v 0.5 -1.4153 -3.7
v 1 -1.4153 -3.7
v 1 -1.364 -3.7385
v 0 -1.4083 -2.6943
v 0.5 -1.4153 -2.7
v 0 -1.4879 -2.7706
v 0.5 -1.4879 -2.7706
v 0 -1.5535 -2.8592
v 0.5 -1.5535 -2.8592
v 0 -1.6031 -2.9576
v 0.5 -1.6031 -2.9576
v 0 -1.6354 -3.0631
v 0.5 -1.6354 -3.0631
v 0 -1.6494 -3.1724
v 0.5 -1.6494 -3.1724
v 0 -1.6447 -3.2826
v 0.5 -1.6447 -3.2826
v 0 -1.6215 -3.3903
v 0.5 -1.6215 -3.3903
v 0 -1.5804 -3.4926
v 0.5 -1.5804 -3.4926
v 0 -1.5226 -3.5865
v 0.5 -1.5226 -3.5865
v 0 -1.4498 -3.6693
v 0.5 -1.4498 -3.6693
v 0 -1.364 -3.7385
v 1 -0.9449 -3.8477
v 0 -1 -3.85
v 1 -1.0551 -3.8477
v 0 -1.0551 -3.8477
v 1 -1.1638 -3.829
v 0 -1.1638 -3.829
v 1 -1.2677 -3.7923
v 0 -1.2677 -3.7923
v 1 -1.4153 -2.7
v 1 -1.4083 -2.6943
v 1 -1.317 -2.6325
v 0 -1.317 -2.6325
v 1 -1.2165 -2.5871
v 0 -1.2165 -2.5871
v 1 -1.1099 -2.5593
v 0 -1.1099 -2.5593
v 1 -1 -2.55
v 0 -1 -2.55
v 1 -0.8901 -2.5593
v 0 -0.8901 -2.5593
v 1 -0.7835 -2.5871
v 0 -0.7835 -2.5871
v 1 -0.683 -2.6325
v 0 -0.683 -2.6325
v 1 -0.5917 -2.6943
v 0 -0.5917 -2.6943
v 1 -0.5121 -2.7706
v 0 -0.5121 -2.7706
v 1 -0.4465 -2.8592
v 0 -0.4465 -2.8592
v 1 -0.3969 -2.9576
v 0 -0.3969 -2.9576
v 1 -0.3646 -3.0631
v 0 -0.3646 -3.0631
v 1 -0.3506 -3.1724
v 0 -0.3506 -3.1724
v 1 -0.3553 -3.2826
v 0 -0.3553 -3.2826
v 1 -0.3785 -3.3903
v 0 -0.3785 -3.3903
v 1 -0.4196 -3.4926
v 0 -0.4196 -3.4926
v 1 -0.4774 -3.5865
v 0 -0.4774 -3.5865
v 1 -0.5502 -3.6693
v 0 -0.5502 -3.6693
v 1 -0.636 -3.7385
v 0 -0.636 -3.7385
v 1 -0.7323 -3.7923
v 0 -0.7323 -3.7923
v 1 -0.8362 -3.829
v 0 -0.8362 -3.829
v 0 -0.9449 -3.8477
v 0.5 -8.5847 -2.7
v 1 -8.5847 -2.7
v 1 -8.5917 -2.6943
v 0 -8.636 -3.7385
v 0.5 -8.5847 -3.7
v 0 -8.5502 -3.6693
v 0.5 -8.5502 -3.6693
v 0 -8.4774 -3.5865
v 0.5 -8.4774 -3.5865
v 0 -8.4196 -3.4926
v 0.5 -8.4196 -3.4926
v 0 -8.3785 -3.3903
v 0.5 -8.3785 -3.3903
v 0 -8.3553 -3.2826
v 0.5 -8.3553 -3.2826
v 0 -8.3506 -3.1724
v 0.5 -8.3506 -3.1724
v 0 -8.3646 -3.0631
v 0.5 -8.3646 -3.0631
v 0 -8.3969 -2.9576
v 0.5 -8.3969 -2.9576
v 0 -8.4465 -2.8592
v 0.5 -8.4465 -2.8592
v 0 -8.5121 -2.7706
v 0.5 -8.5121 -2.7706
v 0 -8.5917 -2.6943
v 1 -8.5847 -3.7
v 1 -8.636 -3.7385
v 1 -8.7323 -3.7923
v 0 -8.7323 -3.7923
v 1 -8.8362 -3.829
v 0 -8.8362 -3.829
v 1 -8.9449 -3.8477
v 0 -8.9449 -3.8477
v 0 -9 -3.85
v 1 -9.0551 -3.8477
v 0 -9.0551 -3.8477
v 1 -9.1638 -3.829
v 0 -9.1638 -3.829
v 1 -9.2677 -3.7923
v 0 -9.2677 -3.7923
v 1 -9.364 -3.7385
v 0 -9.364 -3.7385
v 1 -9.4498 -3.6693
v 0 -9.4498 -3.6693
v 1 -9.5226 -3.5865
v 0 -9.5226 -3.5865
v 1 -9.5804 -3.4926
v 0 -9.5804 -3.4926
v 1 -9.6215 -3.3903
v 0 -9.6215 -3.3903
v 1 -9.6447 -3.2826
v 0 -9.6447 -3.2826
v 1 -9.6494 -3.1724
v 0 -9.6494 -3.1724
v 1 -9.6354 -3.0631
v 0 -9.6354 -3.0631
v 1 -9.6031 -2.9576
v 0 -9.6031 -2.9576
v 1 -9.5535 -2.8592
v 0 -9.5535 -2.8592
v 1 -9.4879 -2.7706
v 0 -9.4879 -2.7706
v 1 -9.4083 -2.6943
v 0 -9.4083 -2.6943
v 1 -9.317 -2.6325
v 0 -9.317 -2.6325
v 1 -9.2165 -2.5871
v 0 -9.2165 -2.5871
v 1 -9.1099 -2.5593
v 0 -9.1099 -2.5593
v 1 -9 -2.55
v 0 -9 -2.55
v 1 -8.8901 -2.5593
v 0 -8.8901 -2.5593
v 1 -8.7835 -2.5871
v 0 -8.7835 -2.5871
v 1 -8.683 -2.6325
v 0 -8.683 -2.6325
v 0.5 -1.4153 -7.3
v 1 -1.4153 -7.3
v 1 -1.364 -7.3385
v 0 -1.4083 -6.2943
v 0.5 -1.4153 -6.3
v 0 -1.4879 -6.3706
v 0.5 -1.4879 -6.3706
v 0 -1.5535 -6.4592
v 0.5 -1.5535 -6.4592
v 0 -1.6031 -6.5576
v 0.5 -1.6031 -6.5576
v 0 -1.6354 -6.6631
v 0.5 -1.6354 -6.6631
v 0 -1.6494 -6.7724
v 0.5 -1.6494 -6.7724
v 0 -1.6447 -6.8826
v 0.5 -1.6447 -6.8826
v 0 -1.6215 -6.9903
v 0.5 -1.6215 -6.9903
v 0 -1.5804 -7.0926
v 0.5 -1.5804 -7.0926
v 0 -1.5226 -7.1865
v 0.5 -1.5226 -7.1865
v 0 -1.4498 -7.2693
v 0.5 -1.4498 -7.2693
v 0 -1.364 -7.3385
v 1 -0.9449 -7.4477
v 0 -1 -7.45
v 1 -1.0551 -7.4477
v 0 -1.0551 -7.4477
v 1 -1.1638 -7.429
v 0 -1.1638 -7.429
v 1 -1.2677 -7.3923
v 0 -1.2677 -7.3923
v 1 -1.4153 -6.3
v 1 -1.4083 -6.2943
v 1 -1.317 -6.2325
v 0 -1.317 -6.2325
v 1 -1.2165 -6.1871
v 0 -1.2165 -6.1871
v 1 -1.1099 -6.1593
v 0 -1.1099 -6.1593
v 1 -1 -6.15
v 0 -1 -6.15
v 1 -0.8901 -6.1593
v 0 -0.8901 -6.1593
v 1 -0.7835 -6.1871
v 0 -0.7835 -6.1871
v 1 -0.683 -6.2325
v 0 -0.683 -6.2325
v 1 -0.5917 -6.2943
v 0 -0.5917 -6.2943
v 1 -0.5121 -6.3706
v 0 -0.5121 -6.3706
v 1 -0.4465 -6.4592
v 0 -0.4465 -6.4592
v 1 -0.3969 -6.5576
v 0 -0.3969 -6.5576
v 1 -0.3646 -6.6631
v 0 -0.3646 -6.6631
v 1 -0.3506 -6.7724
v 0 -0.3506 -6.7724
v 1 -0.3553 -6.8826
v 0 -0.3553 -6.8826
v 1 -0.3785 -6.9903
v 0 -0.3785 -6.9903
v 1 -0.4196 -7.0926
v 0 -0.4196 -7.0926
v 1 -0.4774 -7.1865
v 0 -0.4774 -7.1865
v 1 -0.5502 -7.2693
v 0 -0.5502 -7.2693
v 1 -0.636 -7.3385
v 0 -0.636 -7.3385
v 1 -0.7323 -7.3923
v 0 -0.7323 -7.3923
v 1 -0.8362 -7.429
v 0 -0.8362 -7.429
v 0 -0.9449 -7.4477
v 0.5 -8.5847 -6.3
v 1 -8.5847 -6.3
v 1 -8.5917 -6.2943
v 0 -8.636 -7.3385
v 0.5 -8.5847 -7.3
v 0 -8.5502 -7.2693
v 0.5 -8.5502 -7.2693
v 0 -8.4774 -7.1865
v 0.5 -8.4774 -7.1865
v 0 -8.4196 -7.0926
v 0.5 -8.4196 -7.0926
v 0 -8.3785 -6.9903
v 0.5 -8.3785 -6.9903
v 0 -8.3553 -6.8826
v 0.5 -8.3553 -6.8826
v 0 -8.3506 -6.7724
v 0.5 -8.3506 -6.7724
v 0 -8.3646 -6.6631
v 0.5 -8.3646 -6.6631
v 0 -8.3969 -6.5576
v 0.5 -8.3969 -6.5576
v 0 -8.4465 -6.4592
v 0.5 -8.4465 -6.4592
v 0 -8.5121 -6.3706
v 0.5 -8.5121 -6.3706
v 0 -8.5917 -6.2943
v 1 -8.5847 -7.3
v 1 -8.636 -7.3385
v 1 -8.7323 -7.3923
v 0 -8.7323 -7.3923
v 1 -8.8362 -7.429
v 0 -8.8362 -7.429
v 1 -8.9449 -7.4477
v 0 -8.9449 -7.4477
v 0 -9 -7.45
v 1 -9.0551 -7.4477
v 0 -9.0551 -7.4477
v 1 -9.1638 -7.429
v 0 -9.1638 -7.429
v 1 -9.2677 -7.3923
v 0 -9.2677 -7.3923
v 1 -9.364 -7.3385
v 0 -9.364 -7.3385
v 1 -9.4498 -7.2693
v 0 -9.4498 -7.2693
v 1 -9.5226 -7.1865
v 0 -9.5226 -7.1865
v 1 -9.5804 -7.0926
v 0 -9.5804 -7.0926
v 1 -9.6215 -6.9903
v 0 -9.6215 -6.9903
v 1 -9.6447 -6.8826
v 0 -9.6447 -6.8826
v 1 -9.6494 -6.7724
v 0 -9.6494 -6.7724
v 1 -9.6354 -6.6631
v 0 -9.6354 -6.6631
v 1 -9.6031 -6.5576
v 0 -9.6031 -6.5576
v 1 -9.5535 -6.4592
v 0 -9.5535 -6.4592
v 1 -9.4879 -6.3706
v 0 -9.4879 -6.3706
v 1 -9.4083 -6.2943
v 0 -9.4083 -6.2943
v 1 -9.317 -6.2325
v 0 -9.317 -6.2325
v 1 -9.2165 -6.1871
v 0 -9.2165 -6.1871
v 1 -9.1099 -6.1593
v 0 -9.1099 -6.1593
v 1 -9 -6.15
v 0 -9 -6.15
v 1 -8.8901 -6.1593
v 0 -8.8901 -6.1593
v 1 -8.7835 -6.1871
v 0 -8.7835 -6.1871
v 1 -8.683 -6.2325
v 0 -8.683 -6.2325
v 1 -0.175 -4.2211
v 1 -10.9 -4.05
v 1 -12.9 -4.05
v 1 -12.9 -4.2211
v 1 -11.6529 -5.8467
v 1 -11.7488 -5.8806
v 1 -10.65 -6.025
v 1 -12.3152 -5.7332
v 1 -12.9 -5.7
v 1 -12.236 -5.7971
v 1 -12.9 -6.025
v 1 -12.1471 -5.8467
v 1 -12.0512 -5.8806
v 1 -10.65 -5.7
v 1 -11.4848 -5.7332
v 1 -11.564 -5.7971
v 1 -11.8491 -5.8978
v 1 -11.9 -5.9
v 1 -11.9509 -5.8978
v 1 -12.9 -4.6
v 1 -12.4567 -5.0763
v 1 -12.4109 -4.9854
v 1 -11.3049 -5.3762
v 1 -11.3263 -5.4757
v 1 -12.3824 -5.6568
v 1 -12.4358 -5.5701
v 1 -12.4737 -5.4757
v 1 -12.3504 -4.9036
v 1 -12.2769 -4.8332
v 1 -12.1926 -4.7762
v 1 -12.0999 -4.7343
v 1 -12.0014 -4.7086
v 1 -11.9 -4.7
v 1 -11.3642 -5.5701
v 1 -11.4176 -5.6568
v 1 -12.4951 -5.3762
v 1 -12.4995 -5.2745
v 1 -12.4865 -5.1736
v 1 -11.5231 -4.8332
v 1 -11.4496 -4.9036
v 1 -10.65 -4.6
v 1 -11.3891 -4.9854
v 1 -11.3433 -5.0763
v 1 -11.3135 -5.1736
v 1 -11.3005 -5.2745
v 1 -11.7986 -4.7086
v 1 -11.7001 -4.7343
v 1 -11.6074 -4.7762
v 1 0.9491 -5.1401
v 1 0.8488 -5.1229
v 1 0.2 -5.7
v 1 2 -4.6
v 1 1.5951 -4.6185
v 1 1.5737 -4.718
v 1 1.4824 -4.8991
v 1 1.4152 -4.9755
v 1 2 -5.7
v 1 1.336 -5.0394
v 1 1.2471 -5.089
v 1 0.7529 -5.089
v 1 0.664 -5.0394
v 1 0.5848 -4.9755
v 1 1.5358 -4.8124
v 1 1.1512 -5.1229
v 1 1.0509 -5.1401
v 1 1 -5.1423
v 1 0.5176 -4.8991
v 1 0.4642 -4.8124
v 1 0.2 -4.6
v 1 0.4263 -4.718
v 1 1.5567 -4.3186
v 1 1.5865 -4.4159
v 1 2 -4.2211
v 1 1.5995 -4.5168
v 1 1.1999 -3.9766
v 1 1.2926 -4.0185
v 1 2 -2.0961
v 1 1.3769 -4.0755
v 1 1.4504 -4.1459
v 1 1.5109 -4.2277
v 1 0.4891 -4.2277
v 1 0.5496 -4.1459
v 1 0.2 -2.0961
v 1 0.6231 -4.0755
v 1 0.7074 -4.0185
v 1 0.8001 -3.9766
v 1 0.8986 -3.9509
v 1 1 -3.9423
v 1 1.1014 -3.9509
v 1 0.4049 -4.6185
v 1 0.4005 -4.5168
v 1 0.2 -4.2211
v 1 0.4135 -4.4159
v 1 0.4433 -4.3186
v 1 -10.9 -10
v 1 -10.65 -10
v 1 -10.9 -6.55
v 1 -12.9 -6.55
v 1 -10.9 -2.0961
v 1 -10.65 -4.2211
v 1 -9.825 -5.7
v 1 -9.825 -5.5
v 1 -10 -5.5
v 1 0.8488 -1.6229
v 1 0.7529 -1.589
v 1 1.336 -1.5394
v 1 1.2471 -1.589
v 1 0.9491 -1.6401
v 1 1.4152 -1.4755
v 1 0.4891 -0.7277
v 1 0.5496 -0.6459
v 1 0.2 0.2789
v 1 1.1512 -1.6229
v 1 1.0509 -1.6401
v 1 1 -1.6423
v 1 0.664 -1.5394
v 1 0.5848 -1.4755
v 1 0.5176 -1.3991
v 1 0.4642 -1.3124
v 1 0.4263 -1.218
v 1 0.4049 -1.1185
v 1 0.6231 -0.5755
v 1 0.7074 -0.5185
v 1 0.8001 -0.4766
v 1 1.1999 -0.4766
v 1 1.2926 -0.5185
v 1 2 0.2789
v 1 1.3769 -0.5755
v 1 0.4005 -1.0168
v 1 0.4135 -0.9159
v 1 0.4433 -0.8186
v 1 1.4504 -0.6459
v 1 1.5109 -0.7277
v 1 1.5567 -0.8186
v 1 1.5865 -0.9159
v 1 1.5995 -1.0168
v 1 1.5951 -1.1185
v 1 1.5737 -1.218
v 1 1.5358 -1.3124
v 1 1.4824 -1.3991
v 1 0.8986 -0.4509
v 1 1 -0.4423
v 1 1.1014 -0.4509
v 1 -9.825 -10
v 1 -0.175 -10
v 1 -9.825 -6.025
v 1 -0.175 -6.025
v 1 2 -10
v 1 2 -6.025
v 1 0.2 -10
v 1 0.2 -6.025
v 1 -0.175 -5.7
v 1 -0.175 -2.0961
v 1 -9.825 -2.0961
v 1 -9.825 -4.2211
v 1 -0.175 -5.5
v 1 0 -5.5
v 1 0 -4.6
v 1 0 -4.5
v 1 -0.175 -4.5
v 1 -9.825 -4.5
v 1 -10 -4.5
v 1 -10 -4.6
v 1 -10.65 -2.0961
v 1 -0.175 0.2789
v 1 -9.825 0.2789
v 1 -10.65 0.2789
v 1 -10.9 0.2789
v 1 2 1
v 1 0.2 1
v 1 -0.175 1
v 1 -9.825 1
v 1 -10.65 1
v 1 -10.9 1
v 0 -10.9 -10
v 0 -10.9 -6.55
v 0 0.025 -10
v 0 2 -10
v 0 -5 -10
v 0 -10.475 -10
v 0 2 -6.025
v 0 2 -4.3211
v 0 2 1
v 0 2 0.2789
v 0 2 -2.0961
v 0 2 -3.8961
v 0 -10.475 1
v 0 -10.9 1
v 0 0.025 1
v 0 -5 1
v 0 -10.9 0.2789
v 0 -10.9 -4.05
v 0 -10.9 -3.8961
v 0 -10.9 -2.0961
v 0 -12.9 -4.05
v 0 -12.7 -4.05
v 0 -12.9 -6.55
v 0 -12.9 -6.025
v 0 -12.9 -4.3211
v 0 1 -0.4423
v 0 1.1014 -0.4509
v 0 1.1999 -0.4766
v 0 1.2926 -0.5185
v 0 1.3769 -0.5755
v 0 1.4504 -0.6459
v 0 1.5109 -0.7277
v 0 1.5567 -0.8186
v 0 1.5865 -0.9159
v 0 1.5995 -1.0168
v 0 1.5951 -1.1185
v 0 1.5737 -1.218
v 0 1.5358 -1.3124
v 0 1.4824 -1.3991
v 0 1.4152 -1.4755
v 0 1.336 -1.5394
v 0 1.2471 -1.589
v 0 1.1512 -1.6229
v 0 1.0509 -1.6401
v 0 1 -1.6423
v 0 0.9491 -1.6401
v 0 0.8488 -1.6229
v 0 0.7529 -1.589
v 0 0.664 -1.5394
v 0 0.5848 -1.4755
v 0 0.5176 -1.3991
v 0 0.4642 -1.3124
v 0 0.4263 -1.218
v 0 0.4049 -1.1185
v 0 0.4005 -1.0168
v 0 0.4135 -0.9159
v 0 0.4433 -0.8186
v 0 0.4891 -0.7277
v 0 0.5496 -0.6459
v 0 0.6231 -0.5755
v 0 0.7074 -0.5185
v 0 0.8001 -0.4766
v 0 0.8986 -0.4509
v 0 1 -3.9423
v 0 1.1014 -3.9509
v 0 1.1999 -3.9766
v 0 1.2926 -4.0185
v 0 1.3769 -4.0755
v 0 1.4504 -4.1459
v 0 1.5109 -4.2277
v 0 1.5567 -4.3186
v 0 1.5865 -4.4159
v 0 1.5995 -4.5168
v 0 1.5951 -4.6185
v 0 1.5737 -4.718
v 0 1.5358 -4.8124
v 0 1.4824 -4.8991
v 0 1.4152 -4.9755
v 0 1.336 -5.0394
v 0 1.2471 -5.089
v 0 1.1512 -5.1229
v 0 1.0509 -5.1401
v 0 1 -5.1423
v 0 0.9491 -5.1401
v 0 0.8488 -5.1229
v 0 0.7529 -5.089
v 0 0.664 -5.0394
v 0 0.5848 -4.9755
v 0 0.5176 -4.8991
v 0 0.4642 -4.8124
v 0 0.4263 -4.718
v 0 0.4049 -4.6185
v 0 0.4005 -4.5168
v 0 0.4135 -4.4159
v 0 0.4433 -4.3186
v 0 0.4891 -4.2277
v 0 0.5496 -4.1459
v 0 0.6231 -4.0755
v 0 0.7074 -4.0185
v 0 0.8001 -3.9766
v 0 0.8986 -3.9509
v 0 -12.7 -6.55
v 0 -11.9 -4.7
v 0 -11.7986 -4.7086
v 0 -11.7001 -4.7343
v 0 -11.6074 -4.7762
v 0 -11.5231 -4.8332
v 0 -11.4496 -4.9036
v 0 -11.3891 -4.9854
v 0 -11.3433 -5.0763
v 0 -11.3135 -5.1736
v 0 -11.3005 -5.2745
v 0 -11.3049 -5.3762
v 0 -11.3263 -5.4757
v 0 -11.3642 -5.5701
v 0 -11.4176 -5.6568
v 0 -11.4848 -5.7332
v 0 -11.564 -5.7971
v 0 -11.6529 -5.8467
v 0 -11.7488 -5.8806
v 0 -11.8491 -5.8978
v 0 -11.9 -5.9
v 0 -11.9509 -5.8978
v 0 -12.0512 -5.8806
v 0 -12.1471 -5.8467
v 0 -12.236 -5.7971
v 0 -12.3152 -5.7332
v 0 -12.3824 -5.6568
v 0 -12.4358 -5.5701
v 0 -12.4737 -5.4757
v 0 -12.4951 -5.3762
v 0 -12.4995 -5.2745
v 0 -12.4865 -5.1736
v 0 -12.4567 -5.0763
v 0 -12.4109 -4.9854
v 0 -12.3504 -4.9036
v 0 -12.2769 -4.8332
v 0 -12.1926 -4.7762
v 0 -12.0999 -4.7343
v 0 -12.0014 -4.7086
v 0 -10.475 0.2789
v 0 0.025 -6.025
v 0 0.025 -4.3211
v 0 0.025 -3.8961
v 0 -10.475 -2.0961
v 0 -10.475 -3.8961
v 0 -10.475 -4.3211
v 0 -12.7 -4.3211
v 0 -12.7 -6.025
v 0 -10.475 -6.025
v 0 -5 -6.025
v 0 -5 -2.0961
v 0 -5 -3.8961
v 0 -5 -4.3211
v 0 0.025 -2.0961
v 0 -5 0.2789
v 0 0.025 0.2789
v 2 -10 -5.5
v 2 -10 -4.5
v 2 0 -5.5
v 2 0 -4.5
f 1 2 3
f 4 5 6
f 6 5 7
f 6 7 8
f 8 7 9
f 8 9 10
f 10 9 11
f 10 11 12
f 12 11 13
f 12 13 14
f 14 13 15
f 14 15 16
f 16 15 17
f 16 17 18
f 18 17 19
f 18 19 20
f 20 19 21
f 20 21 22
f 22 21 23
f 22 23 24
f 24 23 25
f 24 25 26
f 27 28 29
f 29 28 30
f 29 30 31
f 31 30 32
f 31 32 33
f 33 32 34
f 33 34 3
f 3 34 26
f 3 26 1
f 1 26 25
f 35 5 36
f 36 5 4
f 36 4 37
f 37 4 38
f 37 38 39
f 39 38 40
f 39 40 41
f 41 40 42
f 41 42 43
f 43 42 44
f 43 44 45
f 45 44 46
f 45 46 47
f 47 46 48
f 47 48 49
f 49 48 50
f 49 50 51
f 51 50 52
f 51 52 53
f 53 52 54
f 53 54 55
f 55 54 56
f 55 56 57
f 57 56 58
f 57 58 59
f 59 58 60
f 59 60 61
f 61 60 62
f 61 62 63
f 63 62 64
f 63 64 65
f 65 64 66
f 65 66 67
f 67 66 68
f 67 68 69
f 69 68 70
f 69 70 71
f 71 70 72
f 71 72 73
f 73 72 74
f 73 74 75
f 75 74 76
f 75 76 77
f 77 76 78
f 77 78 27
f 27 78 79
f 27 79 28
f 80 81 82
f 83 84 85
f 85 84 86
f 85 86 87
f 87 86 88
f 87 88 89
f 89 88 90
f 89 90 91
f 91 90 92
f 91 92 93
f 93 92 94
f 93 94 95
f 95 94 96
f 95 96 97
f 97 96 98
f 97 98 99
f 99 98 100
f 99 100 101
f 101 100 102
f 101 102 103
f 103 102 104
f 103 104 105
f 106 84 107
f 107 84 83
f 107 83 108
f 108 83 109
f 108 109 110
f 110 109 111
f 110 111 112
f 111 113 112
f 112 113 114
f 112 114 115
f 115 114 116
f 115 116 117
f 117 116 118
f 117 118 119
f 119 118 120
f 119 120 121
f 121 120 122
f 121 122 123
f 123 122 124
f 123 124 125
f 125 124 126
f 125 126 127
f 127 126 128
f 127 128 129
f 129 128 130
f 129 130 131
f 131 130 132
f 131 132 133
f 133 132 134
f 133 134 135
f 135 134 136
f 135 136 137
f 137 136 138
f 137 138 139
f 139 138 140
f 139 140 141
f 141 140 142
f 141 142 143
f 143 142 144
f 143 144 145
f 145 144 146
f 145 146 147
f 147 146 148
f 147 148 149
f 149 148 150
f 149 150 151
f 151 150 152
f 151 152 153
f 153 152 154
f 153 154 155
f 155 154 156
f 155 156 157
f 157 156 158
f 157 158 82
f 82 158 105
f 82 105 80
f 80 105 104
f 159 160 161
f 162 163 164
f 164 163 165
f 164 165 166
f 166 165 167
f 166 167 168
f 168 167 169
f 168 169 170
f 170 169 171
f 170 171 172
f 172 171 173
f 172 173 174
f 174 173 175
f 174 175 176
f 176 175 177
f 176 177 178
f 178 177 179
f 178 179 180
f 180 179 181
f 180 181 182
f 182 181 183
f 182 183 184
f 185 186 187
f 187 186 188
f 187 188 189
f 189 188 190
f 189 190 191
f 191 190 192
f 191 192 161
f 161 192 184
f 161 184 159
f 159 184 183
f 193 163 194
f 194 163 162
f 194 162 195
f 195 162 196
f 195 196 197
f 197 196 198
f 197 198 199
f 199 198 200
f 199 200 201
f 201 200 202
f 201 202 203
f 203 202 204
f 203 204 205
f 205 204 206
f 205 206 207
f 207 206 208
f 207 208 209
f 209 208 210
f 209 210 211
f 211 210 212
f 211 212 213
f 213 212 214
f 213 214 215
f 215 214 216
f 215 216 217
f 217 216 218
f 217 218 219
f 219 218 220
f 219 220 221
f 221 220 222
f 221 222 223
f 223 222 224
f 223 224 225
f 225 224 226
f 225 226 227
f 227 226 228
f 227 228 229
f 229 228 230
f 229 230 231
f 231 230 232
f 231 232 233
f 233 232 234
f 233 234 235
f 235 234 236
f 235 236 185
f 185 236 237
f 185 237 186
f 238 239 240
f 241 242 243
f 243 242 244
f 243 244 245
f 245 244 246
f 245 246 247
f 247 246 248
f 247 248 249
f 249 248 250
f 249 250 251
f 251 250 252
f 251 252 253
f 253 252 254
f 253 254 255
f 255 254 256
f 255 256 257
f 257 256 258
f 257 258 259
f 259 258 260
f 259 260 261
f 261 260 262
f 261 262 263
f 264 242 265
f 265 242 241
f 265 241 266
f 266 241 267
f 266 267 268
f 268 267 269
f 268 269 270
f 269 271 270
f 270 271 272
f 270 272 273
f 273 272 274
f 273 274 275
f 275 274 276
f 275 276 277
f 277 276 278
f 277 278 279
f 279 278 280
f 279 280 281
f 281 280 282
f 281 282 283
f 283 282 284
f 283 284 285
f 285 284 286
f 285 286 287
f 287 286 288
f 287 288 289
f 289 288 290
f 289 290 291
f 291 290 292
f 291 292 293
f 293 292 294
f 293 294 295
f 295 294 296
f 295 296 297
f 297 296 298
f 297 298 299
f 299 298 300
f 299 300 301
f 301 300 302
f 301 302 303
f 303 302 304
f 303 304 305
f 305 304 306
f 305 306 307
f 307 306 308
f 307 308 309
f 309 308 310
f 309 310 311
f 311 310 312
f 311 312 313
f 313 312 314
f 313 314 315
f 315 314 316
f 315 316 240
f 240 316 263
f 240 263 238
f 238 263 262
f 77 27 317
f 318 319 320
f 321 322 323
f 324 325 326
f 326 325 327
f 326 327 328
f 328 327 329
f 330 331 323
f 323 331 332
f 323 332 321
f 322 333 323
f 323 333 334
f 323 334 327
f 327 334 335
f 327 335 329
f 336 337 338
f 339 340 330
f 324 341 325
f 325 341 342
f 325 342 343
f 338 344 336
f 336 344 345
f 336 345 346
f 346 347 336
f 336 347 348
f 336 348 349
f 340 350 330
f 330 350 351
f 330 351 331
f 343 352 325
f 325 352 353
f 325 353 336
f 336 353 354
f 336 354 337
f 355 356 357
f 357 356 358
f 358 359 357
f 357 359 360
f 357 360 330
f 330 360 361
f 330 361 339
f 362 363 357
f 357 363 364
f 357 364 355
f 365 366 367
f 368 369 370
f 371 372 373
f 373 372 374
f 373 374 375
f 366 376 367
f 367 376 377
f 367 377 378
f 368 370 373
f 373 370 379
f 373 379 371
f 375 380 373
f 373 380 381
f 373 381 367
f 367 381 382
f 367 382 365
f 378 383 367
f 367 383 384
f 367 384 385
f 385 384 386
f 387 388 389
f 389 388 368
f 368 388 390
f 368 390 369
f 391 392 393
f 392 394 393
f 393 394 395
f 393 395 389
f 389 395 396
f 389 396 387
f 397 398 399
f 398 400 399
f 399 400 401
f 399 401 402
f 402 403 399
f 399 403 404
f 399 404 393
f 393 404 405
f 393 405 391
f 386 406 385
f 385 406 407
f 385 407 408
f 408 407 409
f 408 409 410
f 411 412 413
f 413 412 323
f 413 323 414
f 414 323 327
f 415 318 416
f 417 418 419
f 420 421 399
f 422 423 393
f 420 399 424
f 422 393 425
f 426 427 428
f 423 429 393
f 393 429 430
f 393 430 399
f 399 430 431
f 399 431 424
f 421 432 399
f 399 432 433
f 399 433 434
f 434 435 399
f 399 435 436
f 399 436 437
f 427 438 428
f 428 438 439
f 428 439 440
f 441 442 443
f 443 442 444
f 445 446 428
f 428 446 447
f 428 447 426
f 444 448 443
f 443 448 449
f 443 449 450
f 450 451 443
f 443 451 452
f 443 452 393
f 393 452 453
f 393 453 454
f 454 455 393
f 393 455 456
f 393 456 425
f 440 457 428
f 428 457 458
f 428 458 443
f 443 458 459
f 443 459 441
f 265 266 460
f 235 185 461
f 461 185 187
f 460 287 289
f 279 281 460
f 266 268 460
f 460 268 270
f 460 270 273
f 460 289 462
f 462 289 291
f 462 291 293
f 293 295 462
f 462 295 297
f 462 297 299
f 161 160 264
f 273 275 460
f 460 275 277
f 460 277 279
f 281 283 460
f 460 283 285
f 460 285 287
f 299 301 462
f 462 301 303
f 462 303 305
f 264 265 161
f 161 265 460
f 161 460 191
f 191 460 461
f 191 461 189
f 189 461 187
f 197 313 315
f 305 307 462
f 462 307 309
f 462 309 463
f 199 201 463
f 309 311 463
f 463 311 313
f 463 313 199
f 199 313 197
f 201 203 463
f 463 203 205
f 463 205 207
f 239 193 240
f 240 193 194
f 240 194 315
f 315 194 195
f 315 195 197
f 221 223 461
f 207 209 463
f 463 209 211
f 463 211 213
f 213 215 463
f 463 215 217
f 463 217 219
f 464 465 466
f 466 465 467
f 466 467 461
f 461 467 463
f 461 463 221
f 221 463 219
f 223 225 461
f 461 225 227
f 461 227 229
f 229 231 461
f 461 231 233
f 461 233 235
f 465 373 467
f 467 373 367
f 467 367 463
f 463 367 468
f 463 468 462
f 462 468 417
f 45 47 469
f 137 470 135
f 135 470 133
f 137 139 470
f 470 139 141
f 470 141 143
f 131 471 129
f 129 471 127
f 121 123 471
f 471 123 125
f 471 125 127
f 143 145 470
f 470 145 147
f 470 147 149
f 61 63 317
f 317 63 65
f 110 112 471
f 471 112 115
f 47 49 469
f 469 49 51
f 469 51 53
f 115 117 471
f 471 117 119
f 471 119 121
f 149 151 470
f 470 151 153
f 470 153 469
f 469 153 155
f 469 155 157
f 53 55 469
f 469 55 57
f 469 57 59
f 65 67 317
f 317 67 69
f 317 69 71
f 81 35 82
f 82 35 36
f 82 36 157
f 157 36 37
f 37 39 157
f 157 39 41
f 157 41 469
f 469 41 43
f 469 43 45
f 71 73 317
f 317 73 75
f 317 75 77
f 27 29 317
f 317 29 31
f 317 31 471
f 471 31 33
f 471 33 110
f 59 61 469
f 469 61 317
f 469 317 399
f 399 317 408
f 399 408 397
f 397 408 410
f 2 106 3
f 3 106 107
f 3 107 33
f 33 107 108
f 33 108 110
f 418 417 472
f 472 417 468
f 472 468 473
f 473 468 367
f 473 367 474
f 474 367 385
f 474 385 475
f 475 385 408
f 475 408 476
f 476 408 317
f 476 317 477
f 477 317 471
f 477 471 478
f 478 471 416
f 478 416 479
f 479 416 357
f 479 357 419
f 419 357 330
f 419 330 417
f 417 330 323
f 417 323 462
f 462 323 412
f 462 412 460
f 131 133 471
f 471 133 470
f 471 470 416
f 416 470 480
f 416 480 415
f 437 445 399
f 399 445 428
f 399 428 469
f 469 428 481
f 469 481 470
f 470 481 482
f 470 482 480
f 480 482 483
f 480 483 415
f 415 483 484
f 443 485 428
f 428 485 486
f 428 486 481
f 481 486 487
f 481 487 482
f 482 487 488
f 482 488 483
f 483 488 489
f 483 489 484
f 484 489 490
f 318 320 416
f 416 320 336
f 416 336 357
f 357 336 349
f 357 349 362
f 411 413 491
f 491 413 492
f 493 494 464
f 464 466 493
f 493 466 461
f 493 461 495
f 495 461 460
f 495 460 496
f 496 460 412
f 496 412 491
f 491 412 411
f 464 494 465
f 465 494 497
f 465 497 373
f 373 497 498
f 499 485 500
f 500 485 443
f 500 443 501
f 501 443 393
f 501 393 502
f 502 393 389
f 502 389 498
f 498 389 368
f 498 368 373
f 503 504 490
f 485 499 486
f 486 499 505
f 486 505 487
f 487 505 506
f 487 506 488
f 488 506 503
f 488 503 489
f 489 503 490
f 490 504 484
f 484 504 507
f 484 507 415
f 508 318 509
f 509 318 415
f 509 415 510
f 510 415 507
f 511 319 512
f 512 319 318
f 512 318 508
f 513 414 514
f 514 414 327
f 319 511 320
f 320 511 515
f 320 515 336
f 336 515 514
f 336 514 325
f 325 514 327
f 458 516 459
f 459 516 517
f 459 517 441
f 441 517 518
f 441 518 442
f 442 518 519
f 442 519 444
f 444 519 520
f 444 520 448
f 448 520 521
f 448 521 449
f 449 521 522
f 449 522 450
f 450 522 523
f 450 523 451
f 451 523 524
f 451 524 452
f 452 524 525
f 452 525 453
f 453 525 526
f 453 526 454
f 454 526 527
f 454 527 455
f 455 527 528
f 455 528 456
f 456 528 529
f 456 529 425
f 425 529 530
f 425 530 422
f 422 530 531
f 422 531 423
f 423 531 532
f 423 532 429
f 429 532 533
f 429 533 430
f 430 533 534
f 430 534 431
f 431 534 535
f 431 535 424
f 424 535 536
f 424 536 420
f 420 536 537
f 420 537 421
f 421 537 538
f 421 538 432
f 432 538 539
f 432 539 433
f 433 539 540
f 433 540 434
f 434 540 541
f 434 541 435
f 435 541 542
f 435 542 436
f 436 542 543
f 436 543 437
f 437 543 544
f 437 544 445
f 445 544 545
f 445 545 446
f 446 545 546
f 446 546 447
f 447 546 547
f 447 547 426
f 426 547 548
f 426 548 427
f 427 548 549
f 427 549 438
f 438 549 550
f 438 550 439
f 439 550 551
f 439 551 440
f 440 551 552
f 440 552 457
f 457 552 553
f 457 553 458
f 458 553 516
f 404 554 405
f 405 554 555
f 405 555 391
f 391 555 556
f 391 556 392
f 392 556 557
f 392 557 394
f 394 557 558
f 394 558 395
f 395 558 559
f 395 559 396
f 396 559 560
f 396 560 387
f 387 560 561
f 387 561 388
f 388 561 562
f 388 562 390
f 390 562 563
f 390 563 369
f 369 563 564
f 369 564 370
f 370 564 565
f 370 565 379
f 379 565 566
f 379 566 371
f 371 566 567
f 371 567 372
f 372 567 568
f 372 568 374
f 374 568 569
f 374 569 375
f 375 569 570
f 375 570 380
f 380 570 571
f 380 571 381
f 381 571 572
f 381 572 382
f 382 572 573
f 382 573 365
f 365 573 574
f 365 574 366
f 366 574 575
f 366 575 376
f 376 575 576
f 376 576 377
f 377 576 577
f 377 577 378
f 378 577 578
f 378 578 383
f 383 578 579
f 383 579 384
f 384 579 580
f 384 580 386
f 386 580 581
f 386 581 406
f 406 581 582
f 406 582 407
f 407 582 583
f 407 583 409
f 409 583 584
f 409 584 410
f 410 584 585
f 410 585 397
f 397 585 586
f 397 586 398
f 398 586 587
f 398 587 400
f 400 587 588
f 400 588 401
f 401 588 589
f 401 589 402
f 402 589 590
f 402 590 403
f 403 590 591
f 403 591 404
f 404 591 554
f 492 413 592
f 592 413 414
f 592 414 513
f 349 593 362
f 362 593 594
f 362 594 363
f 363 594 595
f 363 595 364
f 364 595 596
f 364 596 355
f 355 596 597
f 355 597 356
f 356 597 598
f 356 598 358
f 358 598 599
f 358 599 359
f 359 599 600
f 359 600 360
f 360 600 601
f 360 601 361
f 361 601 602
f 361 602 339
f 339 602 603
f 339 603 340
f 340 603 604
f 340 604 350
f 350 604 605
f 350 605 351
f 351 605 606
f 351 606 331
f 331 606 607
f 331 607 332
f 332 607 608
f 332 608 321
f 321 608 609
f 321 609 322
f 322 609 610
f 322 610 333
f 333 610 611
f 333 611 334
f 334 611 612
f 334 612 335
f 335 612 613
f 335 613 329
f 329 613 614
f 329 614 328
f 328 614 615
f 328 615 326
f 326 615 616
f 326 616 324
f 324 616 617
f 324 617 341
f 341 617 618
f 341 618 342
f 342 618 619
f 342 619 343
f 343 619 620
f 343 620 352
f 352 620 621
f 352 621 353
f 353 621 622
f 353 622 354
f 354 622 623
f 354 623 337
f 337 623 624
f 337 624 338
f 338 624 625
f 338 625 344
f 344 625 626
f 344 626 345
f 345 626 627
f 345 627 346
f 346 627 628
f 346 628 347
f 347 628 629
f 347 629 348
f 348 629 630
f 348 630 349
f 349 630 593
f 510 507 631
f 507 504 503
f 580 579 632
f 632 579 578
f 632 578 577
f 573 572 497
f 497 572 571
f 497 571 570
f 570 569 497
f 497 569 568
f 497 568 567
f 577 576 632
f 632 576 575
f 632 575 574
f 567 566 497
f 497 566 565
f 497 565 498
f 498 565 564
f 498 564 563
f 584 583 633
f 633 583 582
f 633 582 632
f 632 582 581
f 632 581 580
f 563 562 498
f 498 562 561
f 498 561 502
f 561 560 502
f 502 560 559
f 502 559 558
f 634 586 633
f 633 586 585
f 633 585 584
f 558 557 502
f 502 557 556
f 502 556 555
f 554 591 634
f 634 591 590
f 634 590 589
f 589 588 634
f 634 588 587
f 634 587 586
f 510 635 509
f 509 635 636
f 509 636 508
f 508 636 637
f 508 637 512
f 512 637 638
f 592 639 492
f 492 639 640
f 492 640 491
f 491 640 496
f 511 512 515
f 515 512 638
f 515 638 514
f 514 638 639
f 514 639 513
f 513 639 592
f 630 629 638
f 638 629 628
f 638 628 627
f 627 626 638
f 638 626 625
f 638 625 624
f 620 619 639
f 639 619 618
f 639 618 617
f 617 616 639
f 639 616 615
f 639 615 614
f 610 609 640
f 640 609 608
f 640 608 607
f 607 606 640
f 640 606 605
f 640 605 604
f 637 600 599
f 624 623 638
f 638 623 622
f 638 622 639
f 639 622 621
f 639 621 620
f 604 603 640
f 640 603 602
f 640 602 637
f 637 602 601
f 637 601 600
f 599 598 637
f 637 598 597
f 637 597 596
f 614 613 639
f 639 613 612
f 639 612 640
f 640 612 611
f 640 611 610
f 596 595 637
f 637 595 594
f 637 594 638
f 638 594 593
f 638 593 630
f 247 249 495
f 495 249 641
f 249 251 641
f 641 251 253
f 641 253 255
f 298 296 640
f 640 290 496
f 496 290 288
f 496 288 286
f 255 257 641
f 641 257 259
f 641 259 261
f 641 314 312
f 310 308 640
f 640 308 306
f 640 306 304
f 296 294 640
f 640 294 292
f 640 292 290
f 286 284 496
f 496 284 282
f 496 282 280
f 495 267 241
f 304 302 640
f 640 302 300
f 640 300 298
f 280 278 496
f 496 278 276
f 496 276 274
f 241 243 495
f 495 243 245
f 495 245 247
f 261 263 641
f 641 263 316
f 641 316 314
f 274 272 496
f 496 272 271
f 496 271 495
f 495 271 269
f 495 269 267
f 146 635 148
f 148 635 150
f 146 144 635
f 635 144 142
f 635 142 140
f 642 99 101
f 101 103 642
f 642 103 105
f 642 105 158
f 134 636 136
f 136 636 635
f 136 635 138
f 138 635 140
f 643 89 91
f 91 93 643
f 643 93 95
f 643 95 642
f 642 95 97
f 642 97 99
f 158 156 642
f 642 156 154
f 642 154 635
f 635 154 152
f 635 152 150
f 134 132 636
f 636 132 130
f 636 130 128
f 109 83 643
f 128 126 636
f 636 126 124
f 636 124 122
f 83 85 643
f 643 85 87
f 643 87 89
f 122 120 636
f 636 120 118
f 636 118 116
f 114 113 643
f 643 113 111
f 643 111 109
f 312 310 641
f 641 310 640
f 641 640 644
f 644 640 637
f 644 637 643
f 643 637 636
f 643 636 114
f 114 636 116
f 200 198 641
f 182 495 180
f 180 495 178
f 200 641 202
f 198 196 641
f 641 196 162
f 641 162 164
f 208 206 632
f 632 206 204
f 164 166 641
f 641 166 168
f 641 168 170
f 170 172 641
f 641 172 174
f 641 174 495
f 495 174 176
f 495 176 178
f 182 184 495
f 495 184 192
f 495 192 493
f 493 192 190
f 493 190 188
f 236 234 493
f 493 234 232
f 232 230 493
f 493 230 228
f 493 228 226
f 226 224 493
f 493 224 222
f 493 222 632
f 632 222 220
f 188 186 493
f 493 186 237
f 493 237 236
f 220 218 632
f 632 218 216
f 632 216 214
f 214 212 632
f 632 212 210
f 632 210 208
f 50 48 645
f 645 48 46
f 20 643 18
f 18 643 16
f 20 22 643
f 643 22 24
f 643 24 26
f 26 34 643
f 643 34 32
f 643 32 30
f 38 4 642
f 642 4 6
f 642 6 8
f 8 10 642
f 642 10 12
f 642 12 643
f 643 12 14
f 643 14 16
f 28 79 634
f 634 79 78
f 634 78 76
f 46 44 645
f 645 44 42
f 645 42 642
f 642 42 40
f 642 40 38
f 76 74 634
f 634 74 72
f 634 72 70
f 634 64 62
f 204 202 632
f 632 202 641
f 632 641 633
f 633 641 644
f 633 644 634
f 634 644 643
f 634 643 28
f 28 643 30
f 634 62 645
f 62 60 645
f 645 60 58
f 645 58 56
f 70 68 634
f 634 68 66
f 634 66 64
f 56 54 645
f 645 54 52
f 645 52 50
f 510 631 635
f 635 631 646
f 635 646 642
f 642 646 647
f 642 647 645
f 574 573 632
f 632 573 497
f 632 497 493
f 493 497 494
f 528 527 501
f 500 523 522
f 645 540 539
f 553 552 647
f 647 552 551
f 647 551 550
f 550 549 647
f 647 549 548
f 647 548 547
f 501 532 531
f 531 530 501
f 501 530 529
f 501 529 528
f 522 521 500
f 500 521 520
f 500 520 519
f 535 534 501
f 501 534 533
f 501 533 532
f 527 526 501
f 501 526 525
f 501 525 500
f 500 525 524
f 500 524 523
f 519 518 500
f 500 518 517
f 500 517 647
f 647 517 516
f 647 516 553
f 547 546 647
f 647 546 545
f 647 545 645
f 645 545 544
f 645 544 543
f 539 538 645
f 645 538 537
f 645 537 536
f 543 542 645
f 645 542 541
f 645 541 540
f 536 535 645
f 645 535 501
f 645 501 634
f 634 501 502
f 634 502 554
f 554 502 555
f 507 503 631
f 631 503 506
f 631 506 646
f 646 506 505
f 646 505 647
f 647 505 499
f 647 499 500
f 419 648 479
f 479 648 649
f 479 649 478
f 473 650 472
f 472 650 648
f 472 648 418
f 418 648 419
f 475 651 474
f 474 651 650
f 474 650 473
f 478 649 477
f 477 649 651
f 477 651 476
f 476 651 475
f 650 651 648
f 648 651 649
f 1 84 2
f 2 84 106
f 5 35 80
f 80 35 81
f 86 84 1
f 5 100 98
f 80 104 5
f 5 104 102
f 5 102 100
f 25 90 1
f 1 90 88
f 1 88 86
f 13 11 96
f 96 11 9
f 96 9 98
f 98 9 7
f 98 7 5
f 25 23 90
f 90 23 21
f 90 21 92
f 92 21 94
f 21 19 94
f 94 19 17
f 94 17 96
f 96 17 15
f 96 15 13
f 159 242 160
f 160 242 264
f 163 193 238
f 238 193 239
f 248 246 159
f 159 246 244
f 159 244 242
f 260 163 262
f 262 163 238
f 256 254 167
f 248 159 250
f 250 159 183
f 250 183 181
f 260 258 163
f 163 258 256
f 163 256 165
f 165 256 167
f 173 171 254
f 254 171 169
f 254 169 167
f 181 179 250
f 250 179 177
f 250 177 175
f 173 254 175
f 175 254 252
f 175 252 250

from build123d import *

# Parameters (mm, degrees)
SKETCH_1_R          = 0.6
SKETCH_1_W          = 4.5
SKETCH_1_H          = 10
SKETCH_1_R_2        = 0.65
SKETCH_1_W_2        = 1
SKETCH_1_W_3        = 2.5
SKETCH_1_H_2        = 2
EXTRUDE_1_DEPTH     = 1
EXTRUDE_START       = 1
SKETCH_1_4_W        = 1
SKETCH_1_4_H        = 10
EXTRUDE_2_DEPTH     = 1
SKETCH_2_W          = 1
SKETCH_2_H          = 8
CUT_EXTRUDE_1_DEPTH = 0.5


with BuildPart() as part:
    # 草图1 → 凸台-拉伸1 (new body)
    # profile 1 of 7: a face of its own
    with BuildSketch(Plane(origin=(0, 0, 0), x_dir=(0, 0, -1), z_dir=(1, 0, 0))):
        Polygon((0, 2), (0, 0), (4.5, 0), (5.5, 0), (10, 0), (10, 2), align=None)
        with Locations((1.042294057, 1)):
            Circle(SKETCH_1_R, mode=Mode.SUBTRACT)
        with Locations((4.542294057, 1)):
            Circle(SKETCH_1_R, mode=Mode.SUBTRACT)
    # profile 2 of 7: a face of its own
    with BuildSketch(Plane(origin=(0, 0, 0), x_dir=(0, 0, -1), z_dir=(1, 0, 0))):
        with Locations((2.25, -5)):
            Rectangle(SKETCH_1_W, SKETCH_1_H)
        with Locations((3.2, -9)):
            Circle(SKETCH_1_R_2, mode=Mode.SUBTRACT)
        with Locations((3.2, -1)):
            Circle(SKETCH_1_R_2, mode=Mode.SUBTRACT)
    # profile 3 of 7: a face of its own
    with BuildSketch(Plane(origin=(0, 0, 0), x_dir=(0, 0, -1), z_dir=(1, 0, 0))):
        Polygon((0, -10), (0, 0), (0, 2), (-1, 2), (-1, -10.9), (0, -10.9), align=None)
    # profile 4 of 7: a face of its own
    with BuildSketch(Plane(origin=(0, 0, 0), x_dir=(0, 0, -1), z_dir=(1, 0, 0))):
        with Locations((5, -5)):
            Rectangle(SKETCH_1_W_2, SKETCH_1_H)
    # profile 5 of 7: a face of its own
    with BuildSketch(Plane(origin=(0, 0, 0), x_dir=(0, 0, -1), z_dir=(1, 0, 0))):
        Polygon((4.5, -10), (0, -10), (0, -10.9), (4.05, -10.9), (6.55, -10.9), (10, -10.9), (10, -10), (5.5, -10), align=None)
    # profile 6 of 7: a face of its own
    with BuildSketch(Plane(origin=(0, 0, 0), x_dir=(0, 0, -1), z_dir=(1, 0, 0))):
        with Locations((7.75, -5)):
            Rectangle(SKETCH_1_W, SKETCH_1_H)
        with Locations((6.8, -9)):
            Circle(SKETCH_1_R_2, mode=Mode.SUBTRACT)
        with Locations((6.8, -1)):
            Circle(SKETCH_1_R_2, mode=Mode.SUBTRACT)
    # profile 7 of 7: a face of its own
    with BuildSketch(Plane(origin=(0, 0, 0), x_dir=(0, 0, -1), z_dir=(1, 0, 0))):
        with Locations((5.3, -11.9)):
            Rectangle(SKETCH_1_W_3, SKETCH_1_H_2)
        with Locations((5.3, -11.9)):
            Circle(SKETCH_1_R, mode=Mode.SUBTRACT)
    extrude(amount=EXTRUDE_1_DEPTH)

    # 草图1<4> → 凸台-拉伸2 (add)
    with BuildSketch(Plane(origin=(0, 0, 0), x_dir=(0, 0, -1), z_dir=(1, 0, 0)).offset(EXTRUDE_START)):
        with Locations((5, -5)):
            Rectangle(SKETCH_1_4_W, SKETCH_1_4_H)
    extrude(amount=EXTRUDE_2_DEPTH)

    # 草图2 → 切除-拉伸1 (cut)
    with BuildSketch(Plane(origin=(1, 0, 0), x_dir=(0, 0, -1), z_dir=(1, 0, 0))):
        with Locations((6.8, -5.415331193)):
            Rectangle(SKETCH_2_W, SKETCH_2_H)
        with Locations((3.2, -5.415331193)):
            Rectangle(SKETCH_2_W, SKETCH_2_H)
    extrude(amount=-CUT_EXTRUDE_1_DEPTH, mode=Mode.SUBTRACT)


solid = part.part
